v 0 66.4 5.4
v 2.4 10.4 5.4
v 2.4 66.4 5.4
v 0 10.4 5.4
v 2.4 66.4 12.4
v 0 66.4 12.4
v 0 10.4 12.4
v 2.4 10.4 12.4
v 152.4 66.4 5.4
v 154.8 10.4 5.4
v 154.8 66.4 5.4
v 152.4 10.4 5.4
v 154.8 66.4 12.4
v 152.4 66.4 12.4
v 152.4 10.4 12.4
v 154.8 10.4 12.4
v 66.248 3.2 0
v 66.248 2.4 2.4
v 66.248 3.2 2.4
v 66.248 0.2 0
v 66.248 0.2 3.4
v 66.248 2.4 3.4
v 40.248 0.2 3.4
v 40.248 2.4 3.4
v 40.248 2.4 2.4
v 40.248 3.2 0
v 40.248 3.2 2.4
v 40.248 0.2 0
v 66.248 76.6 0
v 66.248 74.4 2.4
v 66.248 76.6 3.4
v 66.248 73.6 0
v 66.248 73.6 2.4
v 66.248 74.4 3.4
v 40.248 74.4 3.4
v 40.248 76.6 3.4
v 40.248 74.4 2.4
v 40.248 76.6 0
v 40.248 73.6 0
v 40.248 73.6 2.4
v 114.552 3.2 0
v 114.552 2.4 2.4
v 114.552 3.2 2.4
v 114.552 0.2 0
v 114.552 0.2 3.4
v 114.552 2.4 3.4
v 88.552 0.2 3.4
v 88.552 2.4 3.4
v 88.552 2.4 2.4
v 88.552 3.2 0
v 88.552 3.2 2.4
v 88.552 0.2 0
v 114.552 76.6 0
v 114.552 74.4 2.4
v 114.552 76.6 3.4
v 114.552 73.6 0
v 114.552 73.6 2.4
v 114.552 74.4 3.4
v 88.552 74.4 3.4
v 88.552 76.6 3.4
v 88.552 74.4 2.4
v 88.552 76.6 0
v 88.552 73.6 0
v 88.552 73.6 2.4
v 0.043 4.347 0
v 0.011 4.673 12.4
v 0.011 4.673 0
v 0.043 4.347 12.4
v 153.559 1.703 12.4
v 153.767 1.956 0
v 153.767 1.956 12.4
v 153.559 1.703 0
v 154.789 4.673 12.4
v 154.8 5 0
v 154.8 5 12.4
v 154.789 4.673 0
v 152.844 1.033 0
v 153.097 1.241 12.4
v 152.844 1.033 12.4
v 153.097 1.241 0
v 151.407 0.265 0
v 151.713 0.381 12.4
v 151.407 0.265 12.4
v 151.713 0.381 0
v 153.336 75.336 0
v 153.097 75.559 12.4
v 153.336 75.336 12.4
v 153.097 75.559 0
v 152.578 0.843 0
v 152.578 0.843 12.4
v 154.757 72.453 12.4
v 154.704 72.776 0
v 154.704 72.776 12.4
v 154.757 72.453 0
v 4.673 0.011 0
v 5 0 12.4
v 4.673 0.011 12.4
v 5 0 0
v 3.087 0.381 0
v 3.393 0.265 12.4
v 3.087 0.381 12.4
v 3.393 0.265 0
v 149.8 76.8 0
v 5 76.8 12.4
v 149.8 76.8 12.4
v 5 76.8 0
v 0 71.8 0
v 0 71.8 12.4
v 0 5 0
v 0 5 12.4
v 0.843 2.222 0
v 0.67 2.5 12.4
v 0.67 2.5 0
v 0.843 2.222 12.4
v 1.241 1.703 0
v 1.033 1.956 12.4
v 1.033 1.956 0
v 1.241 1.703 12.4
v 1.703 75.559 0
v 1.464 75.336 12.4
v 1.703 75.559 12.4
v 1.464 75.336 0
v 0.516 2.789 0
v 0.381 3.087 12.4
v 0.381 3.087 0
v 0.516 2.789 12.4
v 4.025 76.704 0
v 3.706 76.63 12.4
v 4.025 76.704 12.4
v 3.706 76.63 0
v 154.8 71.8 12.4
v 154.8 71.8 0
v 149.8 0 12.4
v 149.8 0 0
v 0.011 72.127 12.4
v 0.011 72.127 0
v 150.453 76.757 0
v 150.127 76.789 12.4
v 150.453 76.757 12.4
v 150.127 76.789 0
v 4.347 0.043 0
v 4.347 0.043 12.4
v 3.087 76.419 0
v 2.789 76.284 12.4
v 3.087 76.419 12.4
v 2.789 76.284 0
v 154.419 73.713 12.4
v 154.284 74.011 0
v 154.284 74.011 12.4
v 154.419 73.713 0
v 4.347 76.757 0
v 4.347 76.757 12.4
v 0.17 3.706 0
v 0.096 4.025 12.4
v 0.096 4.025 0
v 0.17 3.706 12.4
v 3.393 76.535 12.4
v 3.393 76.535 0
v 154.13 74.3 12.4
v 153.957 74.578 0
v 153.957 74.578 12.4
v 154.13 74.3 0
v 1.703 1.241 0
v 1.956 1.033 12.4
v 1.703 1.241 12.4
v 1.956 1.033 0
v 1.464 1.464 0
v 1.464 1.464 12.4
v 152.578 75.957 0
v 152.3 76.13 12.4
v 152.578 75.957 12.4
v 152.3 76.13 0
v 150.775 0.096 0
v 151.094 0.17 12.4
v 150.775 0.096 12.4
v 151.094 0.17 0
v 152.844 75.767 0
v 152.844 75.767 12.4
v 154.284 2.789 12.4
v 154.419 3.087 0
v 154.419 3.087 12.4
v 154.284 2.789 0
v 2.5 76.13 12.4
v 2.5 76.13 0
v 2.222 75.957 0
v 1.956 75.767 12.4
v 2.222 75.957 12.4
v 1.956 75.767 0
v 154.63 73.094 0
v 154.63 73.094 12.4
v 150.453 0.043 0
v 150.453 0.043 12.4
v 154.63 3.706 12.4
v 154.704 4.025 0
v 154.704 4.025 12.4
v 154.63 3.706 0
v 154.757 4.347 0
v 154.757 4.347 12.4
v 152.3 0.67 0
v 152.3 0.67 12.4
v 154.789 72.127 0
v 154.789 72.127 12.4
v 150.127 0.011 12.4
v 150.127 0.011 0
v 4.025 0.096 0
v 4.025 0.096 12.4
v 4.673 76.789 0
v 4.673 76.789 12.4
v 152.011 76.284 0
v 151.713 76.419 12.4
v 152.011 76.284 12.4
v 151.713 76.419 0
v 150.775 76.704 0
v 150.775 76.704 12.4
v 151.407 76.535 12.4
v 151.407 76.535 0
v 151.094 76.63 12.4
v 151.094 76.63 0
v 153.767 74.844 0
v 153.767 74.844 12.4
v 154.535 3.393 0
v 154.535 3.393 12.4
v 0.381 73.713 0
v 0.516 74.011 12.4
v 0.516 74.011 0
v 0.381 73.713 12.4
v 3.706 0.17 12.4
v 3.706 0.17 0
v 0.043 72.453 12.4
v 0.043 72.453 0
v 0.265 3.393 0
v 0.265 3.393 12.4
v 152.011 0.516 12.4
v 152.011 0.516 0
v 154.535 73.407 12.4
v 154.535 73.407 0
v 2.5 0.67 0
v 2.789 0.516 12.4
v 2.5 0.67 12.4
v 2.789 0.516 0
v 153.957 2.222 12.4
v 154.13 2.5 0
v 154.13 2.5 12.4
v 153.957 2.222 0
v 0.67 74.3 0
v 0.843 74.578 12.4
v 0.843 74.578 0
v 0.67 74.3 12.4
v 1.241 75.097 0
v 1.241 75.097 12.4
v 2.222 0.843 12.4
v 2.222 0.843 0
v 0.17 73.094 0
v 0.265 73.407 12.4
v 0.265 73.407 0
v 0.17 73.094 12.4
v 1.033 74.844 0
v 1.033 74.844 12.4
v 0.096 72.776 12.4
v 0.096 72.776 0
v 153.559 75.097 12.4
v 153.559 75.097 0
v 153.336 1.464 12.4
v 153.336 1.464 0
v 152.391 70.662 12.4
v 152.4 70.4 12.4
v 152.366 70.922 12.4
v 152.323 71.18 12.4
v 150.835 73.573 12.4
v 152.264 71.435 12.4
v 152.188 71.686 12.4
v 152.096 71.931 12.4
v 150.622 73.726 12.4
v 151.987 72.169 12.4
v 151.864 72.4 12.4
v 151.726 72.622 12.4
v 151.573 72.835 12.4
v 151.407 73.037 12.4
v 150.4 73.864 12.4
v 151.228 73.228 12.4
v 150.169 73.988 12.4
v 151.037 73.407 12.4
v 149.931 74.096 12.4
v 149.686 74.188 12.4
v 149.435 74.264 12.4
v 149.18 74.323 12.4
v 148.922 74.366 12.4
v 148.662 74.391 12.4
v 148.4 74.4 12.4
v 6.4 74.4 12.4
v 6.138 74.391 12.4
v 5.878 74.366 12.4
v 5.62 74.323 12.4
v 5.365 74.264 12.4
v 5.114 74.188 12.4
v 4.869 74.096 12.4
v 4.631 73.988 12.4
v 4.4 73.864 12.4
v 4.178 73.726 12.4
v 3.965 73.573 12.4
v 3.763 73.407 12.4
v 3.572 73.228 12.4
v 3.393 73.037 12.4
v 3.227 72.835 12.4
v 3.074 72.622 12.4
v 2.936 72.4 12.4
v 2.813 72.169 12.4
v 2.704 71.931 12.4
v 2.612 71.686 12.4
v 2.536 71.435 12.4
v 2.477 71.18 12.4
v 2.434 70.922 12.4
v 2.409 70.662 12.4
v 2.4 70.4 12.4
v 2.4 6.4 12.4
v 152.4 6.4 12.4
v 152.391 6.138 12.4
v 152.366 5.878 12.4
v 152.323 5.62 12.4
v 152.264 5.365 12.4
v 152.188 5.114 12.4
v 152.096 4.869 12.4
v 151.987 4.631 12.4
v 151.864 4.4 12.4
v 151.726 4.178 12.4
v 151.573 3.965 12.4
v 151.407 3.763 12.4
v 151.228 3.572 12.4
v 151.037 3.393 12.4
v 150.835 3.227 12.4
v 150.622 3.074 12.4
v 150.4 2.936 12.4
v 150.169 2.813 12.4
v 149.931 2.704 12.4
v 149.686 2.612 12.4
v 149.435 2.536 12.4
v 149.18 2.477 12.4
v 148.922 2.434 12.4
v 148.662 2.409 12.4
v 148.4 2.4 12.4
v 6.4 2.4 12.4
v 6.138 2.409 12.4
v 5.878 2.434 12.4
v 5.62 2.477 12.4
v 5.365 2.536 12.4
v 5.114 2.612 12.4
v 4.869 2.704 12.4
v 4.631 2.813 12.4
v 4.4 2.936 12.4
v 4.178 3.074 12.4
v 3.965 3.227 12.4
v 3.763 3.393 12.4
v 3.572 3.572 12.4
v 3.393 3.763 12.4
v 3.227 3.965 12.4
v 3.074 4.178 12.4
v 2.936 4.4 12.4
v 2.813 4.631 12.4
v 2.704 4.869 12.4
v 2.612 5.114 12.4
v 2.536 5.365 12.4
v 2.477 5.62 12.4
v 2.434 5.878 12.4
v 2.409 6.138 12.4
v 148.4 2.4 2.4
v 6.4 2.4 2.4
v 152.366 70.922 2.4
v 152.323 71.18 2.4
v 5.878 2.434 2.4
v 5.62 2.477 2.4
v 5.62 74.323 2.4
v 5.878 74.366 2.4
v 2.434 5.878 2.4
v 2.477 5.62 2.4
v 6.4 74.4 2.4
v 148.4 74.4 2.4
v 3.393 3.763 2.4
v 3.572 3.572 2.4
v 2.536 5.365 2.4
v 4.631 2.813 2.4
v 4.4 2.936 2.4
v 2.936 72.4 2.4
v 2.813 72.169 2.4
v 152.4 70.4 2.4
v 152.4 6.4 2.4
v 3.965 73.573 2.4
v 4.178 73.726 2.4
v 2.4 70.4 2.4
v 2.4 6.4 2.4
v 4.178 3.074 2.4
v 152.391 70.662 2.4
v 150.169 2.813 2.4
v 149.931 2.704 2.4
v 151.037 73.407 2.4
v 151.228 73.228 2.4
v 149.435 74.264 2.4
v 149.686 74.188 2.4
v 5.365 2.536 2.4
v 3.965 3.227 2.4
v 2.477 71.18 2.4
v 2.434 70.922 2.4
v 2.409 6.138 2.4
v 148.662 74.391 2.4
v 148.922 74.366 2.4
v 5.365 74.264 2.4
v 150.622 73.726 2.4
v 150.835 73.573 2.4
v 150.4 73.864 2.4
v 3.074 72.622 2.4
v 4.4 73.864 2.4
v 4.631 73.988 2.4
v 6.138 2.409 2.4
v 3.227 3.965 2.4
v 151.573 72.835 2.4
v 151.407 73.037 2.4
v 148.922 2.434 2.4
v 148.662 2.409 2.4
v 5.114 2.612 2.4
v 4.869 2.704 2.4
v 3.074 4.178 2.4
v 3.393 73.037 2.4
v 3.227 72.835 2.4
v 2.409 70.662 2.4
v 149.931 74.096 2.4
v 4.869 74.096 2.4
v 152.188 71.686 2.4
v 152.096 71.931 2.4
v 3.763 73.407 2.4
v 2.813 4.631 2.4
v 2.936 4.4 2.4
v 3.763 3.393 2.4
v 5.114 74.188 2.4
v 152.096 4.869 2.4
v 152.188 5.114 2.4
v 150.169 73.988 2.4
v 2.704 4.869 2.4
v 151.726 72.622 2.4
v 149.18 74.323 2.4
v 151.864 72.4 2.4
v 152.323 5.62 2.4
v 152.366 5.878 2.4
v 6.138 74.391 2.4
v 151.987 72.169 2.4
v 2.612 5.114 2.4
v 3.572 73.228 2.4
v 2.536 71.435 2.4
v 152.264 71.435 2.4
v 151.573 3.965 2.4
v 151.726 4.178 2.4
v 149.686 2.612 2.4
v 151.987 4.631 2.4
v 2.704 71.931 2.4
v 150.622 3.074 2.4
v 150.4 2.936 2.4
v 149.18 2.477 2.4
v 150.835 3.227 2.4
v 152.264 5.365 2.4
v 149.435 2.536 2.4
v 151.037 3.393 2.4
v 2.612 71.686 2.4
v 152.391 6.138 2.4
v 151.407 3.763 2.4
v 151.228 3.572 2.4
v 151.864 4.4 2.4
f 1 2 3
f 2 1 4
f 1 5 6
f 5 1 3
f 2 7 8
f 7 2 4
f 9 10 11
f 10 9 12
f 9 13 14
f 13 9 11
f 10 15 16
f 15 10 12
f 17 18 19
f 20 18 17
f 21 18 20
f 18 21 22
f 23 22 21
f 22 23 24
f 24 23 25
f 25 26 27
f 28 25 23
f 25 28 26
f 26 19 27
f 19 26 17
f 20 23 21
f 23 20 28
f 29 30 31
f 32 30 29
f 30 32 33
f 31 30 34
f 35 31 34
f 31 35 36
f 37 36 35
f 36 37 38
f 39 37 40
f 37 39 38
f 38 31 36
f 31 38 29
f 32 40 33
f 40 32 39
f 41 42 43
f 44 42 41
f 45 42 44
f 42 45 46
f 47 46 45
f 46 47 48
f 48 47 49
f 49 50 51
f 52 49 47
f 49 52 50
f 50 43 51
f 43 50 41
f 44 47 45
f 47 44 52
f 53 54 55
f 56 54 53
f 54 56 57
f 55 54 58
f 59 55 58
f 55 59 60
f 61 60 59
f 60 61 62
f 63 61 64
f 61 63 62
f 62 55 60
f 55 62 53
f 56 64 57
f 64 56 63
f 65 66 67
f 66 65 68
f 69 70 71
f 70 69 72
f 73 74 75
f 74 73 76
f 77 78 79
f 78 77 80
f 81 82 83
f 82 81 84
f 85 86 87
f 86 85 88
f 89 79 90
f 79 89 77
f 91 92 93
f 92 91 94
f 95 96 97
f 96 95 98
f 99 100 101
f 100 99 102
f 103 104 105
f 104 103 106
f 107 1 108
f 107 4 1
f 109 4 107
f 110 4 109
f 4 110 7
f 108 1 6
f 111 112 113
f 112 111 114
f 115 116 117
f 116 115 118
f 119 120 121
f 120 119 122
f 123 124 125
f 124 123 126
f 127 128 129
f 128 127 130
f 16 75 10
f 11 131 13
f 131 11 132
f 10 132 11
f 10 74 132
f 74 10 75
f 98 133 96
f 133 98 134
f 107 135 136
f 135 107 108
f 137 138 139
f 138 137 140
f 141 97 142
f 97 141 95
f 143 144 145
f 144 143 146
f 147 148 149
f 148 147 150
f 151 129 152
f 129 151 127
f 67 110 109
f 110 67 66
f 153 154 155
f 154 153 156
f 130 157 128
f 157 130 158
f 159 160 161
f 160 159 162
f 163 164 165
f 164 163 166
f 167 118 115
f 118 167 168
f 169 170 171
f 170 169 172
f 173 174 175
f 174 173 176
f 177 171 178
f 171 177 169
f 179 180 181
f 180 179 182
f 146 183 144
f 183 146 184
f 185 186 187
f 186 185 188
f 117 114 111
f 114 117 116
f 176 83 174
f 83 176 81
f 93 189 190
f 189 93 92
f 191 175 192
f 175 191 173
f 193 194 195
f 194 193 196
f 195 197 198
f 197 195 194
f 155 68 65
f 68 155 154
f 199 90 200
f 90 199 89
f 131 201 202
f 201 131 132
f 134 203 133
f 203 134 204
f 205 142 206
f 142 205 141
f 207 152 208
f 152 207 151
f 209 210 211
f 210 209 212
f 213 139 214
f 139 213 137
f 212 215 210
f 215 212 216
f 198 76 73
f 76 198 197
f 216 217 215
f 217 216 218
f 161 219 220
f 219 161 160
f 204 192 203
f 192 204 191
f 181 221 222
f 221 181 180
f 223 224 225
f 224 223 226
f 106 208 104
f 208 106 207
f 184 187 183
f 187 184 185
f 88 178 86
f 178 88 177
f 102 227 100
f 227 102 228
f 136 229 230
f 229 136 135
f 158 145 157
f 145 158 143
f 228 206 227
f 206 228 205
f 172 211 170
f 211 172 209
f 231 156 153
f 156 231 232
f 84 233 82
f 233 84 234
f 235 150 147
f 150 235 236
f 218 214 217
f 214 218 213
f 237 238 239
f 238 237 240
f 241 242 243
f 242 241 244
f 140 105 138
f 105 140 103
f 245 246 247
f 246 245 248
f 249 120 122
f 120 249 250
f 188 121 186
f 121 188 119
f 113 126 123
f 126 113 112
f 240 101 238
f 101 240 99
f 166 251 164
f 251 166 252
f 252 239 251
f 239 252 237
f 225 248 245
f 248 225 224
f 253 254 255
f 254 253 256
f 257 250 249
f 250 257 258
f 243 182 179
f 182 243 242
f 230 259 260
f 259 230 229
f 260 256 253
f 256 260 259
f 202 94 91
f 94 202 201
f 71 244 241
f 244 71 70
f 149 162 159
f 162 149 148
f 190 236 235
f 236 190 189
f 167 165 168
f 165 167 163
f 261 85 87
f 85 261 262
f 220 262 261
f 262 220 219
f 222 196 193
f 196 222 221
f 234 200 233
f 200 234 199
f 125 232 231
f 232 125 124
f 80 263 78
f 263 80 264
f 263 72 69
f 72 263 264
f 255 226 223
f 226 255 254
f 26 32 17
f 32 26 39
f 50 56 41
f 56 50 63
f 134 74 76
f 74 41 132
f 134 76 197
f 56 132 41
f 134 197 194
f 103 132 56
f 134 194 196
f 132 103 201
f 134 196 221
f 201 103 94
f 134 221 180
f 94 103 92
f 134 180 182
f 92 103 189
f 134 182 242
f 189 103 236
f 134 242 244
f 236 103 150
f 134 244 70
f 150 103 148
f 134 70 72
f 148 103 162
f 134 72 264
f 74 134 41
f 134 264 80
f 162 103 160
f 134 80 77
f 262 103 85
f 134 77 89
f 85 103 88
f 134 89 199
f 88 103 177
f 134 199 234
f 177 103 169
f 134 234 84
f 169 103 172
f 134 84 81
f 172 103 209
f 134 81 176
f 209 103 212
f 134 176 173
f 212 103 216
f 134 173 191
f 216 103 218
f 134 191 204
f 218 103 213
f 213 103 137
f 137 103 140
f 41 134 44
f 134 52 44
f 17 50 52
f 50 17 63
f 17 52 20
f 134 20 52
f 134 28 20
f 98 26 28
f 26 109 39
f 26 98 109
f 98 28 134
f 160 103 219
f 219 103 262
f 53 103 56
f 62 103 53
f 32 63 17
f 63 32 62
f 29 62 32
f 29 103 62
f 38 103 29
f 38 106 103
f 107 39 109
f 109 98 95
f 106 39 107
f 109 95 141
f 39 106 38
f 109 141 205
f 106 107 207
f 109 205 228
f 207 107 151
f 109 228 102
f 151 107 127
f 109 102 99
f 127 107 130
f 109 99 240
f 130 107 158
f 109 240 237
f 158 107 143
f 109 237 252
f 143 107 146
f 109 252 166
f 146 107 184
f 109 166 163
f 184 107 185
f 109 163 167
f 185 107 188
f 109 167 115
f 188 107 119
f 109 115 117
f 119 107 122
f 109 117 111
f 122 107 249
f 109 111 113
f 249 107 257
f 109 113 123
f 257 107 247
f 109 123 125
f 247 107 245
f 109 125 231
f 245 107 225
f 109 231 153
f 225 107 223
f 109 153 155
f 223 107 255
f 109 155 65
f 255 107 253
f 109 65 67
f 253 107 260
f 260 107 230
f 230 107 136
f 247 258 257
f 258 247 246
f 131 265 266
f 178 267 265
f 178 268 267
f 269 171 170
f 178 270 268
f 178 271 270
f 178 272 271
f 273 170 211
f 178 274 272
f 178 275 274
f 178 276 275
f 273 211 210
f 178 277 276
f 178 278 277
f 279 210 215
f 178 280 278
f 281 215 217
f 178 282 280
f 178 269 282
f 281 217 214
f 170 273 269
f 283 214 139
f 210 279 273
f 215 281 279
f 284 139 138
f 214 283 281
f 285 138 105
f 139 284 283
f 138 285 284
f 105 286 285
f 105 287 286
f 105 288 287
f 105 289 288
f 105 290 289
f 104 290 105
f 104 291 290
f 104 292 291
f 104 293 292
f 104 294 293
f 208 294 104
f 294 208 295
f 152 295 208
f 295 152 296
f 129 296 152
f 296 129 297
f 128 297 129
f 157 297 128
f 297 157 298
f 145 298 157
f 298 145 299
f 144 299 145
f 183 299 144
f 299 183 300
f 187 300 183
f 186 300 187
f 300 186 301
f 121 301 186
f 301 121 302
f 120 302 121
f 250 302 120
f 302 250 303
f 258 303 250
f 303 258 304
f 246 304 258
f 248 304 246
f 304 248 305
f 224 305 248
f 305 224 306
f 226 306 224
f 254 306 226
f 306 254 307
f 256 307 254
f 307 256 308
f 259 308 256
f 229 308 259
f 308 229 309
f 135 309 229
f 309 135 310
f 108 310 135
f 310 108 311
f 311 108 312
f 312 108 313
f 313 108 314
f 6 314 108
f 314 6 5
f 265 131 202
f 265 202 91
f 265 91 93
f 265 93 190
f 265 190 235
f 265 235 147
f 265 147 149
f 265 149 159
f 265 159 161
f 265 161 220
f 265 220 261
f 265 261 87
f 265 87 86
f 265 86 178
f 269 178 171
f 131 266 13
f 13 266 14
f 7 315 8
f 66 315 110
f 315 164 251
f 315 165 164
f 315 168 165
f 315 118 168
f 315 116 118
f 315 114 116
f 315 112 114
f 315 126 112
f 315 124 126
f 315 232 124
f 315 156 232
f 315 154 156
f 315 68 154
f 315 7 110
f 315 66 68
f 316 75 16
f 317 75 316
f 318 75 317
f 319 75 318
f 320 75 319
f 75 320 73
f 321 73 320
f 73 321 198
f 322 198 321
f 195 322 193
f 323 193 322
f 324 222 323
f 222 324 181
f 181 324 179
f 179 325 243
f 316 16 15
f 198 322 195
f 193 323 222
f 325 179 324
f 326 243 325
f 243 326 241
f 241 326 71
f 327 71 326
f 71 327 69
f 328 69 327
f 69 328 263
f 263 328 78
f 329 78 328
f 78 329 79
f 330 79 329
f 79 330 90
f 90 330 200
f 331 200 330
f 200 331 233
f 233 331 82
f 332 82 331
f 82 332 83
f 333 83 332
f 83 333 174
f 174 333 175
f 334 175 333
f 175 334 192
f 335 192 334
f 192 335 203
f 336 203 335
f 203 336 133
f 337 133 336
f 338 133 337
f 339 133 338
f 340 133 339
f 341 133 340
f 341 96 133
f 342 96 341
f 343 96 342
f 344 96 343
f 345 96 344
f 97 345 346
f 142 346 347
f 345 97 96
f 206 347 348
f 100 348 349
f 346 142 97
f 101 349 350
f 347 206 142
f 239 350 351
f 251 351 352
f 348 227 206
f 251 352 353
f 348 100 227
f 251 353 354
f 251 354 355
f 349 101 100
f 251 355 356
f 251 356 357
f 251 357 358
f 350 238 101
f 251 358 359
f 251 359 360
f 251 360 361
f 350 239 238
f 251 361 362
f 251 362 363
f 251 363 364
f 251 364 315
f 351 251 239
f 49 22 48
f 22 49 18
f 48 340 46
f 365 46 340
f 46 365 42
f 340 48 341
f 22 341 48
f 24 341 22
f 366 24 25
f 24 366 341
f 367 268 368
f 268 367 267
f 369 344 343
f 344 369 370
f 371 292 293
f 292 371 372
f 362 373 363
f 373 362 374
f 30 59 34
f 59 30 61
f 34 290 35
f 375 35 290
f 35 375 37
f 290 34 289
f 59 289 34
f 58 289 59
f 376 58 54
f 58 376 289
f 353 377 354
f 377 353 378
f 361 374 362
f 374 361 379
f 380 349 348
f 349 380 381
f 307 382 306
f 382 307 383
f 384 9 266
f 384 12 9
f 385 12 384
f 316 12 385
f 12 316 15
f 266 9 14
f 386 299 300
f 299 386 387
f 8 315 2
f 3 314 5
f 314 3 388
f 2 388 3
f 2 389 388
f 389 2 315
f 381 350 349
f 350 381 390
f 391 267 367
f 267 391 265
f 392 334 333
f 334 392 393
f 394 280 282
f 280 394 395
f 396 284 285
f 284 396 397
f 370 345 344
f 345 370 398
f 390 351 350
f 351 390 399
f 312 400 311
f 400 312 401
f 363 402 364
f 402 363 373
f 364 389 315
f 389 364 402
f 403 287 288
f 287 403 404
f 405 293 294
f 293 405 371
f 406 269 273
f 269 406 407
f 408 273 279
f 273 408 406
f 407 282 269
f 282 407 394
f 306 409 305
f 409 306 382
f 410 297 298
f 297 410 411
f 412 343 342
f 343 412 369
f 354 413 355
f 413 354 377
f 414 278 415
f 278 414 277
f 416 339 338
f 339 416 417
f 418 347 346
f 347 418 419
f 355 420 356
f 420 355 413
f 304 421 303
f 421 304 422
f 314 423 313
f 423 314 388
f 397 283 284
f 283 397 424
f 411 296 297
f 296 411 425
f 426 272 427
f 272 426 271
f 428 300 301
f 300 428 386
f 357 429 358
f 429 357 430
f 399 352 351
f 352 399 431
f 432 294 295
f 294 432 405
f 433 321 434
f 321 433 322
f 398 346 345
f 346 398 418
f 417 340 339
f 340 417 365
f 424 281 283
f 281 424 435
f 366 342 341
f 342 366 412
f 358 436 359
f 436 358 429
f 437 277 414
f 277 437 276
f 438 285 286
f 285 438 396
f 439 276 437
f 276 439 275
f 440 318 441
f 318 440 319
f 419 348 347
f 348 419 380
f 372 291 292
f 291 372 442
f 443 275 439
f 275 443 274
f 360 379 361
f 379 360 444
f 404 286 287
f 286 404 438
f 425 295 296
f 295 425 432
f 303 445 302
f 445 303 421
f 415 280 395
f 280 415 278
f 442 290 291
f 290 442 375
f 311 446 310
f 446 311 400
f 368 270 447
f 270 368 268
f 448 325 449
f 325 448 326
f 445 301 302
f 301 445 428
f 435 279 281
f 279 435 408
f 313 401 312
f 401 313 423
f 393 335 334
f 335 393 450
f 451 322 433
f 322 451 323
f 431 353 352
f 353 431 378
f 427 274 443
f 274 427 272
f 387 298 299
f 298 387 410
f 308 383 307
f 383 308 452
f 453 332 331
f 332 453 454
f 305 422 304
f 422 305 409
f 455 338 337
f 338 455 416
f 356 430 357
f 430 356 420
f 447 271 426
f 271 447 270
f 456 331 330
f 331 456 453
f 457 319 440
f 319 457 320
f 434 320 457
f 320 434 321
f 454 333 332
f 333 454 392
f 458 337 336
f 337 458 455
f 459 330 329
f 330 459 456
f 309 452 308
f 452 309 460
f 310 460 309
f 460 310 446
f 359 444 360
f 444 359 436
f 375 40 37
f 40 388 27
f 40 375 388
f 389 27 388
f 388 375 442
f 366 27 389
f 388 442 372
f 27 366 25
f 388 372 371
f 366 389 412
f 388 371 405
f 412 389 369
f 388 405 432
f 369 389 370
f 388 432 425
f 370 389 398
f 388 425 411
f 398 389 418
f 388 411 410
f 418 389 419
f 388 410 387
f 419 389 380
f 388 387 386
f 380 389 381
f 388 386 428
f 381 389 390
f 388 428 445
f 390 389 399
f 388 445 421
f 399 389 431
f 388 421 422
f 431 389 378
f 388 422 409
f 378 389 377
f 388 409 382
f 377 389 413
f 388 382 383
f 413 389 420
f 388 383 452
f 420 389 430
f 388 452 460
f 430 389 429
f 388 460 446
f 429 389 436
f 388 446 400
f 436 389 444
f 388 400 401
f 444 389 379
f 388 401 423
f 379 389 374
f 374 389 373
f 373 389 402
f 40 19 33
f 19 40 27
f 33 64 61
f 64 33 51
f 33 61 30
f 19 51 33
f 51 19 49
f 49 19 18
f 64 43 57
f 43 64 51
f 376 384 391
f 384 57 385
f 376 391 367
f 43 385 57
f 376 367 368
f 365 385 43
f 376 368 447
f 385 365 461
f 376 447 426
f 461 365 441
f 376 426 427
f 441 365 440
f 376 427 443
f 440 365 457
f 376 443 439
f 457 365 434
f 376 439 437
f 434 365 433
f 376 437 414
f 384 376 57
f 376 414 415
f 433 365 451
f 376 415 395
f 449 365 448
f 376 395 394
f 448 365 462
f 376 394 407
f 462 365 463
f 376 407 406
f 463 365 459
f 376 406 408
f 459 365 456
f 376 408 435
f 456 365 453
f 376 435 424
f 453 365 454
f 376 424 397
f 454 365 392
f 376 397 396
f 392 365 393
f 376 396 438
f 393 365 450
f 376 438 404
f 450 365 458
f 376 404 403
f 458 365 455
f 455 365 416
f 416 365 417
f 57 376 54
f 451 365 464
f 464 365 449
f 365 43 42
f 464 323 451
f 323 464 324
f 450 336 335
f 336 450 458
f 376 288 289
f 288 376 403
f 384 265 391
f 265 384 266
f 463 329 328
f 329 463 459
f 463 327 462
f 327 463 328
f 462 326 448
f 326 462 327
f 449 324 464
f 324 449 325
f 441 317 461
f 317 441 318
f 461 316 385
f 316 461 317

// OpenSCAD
// file: layout.scad
// GENERATED by cad/fit.py from cad/ordered_parts.toml and config.scad.
// Do not edit: change those and run  python3 cad/fit.py  (from sport_cam/).

base_d = 135;
base_h = 73;
window_z = 27;
shelf_z = 39;
shelf_r = 63.75;
gap_ang = 270;
gap_d = 23.5;
post_r = 60.5;
post_angs = [90, 195, 345];
window_ribs = [90, 111.18, 132.35, 153.53, 174.71, 195.88, 217.06, 238.24, 259.41, 280.59, 301.76, 322.94, 344.12, 5.29, 26.47, 47.65, 68.82];
pi_holes = [[-30, -18.5], [28, -18.5], [-30, 30.5], [28, 30.5]];
pi_hole_d = 2.9;
usbc_ang = 180;
usbc_z = 8.35;
usbc_w = 13.5;
usbc_h = 8;
jack_ang = 210;
jack_z = 9.5;
jack_d = 8.2;
switch_ang = 150;
switch_z = 11.5;
switch_cut_w = 19.2;
switch_cut_h = 13.2;
switch_panel_t = 2;
vents_low = [5, 25, 45, 65, 105, 125, 225, 245, 265, 285, 305, 325];
vent_low_z = 9;
vents_high = [5, 25, 65, 85, 105, 165, 185, 205, 245, 265, 285, 345];
vent_high_z = 54.5;
lid_screw_angs = [45, 135, 225, 315];
lid_screw_z = 70;
lid_nut_recess = 0.7;
ptz_nut_af = 5.5;
ptz_slot_min = 30;
ptz_slot_max = 72;
risers = [];
insert_od = 12.7;
insert_l = 8;
bank_l = 150;
bank_w = 72;
bank_h = 30;
// file: config.scad
// SportCam — parametric dimensions (mm). Every part file includes this.
//
// Three kinds of number feed the CAD:
//   * design choices — wall thickness, clearances — set below;
//   * the sizes of the parts you buy — in ../../cad/ordered_parts.toml;
//   * the layout — where each board sits, which way the Pi faces, how big
//     the enclosure is — which ../../cad/fit.py solves from the other two
//     and writes to layout.scad (included half-way down).
// After changing either file run   python3 cad/fit.py   from sport_cam/.
// It re-solves the layout, re-renders the STLs and audits that every part
// fits together and prints on a Bambu Lab A1 Mini (cad/FIT_REPORT.md).
//
// Keep the numbers above the include plain numbers (fit.py reads them);
// anything worked out from the layout goes below it.
//
// This is the **PTZ-base build**: the camera, pan and tilt all come from the
// Arducam IMX477 PTZ camera with metal pan-tilt base (B0167B12), which bolts
// to the lid of a static enclosure — see docs/design/03-mechanical-design.md.
//
// This is the **camera-only variant**: no UWB anchors, no mast, no wearable.
// The camera finds and follows a person by vision alone.

$fn = 96;
clr = 0.25;                    // general printed-fit clearance per side

// ---- enclosure -------------------------------------------------------------
// Bottom to top: the power boards stuck to the floor; the LED ring under a
// printed shelf, shining out through the LED window; the Raspberry Pi on the
// shelf; the lid with the camera. Every part must print in one piece on a
// Bambu Lab A1 Mini (≤ 170 mm on every axis); fit.py keeps it that way.
base_d_min    = 135;           // narrowest enclosure (outer Ø); fit.py widens it only if the parts need it
base_h_min    = 66;            // lowest floor-to-lid height; fit.py raises it to clear the stack
base_wall     = 3;
lid_t         = 5;             // lid is structural: it carries the whole camera
spigot_h      = 6;             // locating ring under the lid that drops into the mouth
spigot_w      = 3;
lid_screw_pad = 7;             // the ring is thickened here for the four radial M3 inserts
lid_screw_d   = 3.4;
led_window_h  = 12;            // circumferential window the LED ring lights
window_bridge = 22;            // longest unsupported span over the window; ribs every this far
window_rib_w  = 3;
diffuser_t    = 1.6;           // translucent band slid over the outside of the window
diffuser_lip  = 2;             // how far it overlaps the wall above and below
ledge_h       = 2;             // the band rests on this outside ledge

tripod_boss_d = 24;            // floor boss for the 3/8-16 insert (bore from ordered_parts.toml)
tripod_boss_h = 8;

tape_t        = 1;             // foam tape under the power boards and the LED ring
part_gap      = 2;             // clearance fit.py keeps between parts
wall_gap      = 1;             // and between a part and the wall
shelf_t       = 3;             // the Pi shelf
post_d        = 10;            // shelf posts, merged into the wall; M3 insert in each top
post_insert_d = 4.0;
vent_w        = 4;
vent_h        = 8;
ribbon_slack_h = 8;            // clear height kept under the lid opening for the coiled camera ribbon

// ---- Arducam pan-tilt base interface ---------------------------------------
// Arducam publishes no drawing for the B0167B12 metal base and the footprint
// has changed between revisions, so the lid is cut with radial SLOTS spanning
// this range. Your base's spacing goes in ordered_parts.toml [ptz]; the audit
// checks it lands inside.
ptz_bolt_min  = 30;
ptz_bolt_max  = 72;
ptz_slot_w    = 3.4;           // M3 clearance
ptz_cable_d   = 34;            // central opening: CSI ribbon + servo leads drop through

// ---- battery tray ----------------------------------------------------------
// Sized to the power bank in ordered_parts.toml. Straps to a tripod leg or
// centre column, or sandwiches under the enclosure on a long 1/4-20.
tray_wall = 2.4;
tray_lip = 10;                 // how far the side walls come up the bank
tray_strap_w = 26;             // hook-and-loop strap slots

// ---- solved layout ---------------------------------------------------------
include <layout.scad>          // GENERATED by cad/fit.py — bought-part sizes + layout

R_in = base_d / 2 - base_wall; // inside of the wall
tripod_hole_d = insert_od;     // the 3/8-16 insert, epoxied: a snug slip fit
// main file
// Battery tray — carries the USB-C power bank low on the tripod.
//
// Strap it to a tripod leg or the centre column through the two slots. (An
// earlier version also had a central 1/4-20 bore for sandwiching the tray
// between the tripod and the enclosure, but the bolt would have had to pass
// through the bank, so it's gone.)
//
// Keeping the heaviest single item low is what stops the rig being tippy.
include <config.scad>

ol = bank_l + 2 * tray_wall;
ow = bank_w + 2 * tray_wall;

module rbox(l, w, h, rad) {
    hull() for (x = [rad, l - rad], y = [rad, w - rad])
        translate([x, y, 0]) cylinder(r = rad, h = h);
}

module battery_tray() {
    difference() {
        rbox(ol, ow, tray_wall + tray_lip, 5);
        // bank pocket
        translate([tray_wall, tray_wall, tray_wall])
            rbox(bank_l, bank_w, tray_lip + 1, 4);
        // open the ends so a USB cable can leave either side
        for (x = [-1, ol - tray_wall - 1])
            translate([x, tray_wall + 8, tray_wall + 3])
                cube([tray_wall + 2, bank_w - 16, tray_lip]);
        // strap slots through the floor, either side of the pocket
        for (x = [ol * 0.26, ol * 0.74 - tray_strap_w])
            for (y = [tray_wall / 2 - 1, ow - tray_wall / 2 - 2])
                translate([x, y, -1]) cube([tray_strap_w, 3, tray_wall + 2]);
    }
}

battery_tray();
